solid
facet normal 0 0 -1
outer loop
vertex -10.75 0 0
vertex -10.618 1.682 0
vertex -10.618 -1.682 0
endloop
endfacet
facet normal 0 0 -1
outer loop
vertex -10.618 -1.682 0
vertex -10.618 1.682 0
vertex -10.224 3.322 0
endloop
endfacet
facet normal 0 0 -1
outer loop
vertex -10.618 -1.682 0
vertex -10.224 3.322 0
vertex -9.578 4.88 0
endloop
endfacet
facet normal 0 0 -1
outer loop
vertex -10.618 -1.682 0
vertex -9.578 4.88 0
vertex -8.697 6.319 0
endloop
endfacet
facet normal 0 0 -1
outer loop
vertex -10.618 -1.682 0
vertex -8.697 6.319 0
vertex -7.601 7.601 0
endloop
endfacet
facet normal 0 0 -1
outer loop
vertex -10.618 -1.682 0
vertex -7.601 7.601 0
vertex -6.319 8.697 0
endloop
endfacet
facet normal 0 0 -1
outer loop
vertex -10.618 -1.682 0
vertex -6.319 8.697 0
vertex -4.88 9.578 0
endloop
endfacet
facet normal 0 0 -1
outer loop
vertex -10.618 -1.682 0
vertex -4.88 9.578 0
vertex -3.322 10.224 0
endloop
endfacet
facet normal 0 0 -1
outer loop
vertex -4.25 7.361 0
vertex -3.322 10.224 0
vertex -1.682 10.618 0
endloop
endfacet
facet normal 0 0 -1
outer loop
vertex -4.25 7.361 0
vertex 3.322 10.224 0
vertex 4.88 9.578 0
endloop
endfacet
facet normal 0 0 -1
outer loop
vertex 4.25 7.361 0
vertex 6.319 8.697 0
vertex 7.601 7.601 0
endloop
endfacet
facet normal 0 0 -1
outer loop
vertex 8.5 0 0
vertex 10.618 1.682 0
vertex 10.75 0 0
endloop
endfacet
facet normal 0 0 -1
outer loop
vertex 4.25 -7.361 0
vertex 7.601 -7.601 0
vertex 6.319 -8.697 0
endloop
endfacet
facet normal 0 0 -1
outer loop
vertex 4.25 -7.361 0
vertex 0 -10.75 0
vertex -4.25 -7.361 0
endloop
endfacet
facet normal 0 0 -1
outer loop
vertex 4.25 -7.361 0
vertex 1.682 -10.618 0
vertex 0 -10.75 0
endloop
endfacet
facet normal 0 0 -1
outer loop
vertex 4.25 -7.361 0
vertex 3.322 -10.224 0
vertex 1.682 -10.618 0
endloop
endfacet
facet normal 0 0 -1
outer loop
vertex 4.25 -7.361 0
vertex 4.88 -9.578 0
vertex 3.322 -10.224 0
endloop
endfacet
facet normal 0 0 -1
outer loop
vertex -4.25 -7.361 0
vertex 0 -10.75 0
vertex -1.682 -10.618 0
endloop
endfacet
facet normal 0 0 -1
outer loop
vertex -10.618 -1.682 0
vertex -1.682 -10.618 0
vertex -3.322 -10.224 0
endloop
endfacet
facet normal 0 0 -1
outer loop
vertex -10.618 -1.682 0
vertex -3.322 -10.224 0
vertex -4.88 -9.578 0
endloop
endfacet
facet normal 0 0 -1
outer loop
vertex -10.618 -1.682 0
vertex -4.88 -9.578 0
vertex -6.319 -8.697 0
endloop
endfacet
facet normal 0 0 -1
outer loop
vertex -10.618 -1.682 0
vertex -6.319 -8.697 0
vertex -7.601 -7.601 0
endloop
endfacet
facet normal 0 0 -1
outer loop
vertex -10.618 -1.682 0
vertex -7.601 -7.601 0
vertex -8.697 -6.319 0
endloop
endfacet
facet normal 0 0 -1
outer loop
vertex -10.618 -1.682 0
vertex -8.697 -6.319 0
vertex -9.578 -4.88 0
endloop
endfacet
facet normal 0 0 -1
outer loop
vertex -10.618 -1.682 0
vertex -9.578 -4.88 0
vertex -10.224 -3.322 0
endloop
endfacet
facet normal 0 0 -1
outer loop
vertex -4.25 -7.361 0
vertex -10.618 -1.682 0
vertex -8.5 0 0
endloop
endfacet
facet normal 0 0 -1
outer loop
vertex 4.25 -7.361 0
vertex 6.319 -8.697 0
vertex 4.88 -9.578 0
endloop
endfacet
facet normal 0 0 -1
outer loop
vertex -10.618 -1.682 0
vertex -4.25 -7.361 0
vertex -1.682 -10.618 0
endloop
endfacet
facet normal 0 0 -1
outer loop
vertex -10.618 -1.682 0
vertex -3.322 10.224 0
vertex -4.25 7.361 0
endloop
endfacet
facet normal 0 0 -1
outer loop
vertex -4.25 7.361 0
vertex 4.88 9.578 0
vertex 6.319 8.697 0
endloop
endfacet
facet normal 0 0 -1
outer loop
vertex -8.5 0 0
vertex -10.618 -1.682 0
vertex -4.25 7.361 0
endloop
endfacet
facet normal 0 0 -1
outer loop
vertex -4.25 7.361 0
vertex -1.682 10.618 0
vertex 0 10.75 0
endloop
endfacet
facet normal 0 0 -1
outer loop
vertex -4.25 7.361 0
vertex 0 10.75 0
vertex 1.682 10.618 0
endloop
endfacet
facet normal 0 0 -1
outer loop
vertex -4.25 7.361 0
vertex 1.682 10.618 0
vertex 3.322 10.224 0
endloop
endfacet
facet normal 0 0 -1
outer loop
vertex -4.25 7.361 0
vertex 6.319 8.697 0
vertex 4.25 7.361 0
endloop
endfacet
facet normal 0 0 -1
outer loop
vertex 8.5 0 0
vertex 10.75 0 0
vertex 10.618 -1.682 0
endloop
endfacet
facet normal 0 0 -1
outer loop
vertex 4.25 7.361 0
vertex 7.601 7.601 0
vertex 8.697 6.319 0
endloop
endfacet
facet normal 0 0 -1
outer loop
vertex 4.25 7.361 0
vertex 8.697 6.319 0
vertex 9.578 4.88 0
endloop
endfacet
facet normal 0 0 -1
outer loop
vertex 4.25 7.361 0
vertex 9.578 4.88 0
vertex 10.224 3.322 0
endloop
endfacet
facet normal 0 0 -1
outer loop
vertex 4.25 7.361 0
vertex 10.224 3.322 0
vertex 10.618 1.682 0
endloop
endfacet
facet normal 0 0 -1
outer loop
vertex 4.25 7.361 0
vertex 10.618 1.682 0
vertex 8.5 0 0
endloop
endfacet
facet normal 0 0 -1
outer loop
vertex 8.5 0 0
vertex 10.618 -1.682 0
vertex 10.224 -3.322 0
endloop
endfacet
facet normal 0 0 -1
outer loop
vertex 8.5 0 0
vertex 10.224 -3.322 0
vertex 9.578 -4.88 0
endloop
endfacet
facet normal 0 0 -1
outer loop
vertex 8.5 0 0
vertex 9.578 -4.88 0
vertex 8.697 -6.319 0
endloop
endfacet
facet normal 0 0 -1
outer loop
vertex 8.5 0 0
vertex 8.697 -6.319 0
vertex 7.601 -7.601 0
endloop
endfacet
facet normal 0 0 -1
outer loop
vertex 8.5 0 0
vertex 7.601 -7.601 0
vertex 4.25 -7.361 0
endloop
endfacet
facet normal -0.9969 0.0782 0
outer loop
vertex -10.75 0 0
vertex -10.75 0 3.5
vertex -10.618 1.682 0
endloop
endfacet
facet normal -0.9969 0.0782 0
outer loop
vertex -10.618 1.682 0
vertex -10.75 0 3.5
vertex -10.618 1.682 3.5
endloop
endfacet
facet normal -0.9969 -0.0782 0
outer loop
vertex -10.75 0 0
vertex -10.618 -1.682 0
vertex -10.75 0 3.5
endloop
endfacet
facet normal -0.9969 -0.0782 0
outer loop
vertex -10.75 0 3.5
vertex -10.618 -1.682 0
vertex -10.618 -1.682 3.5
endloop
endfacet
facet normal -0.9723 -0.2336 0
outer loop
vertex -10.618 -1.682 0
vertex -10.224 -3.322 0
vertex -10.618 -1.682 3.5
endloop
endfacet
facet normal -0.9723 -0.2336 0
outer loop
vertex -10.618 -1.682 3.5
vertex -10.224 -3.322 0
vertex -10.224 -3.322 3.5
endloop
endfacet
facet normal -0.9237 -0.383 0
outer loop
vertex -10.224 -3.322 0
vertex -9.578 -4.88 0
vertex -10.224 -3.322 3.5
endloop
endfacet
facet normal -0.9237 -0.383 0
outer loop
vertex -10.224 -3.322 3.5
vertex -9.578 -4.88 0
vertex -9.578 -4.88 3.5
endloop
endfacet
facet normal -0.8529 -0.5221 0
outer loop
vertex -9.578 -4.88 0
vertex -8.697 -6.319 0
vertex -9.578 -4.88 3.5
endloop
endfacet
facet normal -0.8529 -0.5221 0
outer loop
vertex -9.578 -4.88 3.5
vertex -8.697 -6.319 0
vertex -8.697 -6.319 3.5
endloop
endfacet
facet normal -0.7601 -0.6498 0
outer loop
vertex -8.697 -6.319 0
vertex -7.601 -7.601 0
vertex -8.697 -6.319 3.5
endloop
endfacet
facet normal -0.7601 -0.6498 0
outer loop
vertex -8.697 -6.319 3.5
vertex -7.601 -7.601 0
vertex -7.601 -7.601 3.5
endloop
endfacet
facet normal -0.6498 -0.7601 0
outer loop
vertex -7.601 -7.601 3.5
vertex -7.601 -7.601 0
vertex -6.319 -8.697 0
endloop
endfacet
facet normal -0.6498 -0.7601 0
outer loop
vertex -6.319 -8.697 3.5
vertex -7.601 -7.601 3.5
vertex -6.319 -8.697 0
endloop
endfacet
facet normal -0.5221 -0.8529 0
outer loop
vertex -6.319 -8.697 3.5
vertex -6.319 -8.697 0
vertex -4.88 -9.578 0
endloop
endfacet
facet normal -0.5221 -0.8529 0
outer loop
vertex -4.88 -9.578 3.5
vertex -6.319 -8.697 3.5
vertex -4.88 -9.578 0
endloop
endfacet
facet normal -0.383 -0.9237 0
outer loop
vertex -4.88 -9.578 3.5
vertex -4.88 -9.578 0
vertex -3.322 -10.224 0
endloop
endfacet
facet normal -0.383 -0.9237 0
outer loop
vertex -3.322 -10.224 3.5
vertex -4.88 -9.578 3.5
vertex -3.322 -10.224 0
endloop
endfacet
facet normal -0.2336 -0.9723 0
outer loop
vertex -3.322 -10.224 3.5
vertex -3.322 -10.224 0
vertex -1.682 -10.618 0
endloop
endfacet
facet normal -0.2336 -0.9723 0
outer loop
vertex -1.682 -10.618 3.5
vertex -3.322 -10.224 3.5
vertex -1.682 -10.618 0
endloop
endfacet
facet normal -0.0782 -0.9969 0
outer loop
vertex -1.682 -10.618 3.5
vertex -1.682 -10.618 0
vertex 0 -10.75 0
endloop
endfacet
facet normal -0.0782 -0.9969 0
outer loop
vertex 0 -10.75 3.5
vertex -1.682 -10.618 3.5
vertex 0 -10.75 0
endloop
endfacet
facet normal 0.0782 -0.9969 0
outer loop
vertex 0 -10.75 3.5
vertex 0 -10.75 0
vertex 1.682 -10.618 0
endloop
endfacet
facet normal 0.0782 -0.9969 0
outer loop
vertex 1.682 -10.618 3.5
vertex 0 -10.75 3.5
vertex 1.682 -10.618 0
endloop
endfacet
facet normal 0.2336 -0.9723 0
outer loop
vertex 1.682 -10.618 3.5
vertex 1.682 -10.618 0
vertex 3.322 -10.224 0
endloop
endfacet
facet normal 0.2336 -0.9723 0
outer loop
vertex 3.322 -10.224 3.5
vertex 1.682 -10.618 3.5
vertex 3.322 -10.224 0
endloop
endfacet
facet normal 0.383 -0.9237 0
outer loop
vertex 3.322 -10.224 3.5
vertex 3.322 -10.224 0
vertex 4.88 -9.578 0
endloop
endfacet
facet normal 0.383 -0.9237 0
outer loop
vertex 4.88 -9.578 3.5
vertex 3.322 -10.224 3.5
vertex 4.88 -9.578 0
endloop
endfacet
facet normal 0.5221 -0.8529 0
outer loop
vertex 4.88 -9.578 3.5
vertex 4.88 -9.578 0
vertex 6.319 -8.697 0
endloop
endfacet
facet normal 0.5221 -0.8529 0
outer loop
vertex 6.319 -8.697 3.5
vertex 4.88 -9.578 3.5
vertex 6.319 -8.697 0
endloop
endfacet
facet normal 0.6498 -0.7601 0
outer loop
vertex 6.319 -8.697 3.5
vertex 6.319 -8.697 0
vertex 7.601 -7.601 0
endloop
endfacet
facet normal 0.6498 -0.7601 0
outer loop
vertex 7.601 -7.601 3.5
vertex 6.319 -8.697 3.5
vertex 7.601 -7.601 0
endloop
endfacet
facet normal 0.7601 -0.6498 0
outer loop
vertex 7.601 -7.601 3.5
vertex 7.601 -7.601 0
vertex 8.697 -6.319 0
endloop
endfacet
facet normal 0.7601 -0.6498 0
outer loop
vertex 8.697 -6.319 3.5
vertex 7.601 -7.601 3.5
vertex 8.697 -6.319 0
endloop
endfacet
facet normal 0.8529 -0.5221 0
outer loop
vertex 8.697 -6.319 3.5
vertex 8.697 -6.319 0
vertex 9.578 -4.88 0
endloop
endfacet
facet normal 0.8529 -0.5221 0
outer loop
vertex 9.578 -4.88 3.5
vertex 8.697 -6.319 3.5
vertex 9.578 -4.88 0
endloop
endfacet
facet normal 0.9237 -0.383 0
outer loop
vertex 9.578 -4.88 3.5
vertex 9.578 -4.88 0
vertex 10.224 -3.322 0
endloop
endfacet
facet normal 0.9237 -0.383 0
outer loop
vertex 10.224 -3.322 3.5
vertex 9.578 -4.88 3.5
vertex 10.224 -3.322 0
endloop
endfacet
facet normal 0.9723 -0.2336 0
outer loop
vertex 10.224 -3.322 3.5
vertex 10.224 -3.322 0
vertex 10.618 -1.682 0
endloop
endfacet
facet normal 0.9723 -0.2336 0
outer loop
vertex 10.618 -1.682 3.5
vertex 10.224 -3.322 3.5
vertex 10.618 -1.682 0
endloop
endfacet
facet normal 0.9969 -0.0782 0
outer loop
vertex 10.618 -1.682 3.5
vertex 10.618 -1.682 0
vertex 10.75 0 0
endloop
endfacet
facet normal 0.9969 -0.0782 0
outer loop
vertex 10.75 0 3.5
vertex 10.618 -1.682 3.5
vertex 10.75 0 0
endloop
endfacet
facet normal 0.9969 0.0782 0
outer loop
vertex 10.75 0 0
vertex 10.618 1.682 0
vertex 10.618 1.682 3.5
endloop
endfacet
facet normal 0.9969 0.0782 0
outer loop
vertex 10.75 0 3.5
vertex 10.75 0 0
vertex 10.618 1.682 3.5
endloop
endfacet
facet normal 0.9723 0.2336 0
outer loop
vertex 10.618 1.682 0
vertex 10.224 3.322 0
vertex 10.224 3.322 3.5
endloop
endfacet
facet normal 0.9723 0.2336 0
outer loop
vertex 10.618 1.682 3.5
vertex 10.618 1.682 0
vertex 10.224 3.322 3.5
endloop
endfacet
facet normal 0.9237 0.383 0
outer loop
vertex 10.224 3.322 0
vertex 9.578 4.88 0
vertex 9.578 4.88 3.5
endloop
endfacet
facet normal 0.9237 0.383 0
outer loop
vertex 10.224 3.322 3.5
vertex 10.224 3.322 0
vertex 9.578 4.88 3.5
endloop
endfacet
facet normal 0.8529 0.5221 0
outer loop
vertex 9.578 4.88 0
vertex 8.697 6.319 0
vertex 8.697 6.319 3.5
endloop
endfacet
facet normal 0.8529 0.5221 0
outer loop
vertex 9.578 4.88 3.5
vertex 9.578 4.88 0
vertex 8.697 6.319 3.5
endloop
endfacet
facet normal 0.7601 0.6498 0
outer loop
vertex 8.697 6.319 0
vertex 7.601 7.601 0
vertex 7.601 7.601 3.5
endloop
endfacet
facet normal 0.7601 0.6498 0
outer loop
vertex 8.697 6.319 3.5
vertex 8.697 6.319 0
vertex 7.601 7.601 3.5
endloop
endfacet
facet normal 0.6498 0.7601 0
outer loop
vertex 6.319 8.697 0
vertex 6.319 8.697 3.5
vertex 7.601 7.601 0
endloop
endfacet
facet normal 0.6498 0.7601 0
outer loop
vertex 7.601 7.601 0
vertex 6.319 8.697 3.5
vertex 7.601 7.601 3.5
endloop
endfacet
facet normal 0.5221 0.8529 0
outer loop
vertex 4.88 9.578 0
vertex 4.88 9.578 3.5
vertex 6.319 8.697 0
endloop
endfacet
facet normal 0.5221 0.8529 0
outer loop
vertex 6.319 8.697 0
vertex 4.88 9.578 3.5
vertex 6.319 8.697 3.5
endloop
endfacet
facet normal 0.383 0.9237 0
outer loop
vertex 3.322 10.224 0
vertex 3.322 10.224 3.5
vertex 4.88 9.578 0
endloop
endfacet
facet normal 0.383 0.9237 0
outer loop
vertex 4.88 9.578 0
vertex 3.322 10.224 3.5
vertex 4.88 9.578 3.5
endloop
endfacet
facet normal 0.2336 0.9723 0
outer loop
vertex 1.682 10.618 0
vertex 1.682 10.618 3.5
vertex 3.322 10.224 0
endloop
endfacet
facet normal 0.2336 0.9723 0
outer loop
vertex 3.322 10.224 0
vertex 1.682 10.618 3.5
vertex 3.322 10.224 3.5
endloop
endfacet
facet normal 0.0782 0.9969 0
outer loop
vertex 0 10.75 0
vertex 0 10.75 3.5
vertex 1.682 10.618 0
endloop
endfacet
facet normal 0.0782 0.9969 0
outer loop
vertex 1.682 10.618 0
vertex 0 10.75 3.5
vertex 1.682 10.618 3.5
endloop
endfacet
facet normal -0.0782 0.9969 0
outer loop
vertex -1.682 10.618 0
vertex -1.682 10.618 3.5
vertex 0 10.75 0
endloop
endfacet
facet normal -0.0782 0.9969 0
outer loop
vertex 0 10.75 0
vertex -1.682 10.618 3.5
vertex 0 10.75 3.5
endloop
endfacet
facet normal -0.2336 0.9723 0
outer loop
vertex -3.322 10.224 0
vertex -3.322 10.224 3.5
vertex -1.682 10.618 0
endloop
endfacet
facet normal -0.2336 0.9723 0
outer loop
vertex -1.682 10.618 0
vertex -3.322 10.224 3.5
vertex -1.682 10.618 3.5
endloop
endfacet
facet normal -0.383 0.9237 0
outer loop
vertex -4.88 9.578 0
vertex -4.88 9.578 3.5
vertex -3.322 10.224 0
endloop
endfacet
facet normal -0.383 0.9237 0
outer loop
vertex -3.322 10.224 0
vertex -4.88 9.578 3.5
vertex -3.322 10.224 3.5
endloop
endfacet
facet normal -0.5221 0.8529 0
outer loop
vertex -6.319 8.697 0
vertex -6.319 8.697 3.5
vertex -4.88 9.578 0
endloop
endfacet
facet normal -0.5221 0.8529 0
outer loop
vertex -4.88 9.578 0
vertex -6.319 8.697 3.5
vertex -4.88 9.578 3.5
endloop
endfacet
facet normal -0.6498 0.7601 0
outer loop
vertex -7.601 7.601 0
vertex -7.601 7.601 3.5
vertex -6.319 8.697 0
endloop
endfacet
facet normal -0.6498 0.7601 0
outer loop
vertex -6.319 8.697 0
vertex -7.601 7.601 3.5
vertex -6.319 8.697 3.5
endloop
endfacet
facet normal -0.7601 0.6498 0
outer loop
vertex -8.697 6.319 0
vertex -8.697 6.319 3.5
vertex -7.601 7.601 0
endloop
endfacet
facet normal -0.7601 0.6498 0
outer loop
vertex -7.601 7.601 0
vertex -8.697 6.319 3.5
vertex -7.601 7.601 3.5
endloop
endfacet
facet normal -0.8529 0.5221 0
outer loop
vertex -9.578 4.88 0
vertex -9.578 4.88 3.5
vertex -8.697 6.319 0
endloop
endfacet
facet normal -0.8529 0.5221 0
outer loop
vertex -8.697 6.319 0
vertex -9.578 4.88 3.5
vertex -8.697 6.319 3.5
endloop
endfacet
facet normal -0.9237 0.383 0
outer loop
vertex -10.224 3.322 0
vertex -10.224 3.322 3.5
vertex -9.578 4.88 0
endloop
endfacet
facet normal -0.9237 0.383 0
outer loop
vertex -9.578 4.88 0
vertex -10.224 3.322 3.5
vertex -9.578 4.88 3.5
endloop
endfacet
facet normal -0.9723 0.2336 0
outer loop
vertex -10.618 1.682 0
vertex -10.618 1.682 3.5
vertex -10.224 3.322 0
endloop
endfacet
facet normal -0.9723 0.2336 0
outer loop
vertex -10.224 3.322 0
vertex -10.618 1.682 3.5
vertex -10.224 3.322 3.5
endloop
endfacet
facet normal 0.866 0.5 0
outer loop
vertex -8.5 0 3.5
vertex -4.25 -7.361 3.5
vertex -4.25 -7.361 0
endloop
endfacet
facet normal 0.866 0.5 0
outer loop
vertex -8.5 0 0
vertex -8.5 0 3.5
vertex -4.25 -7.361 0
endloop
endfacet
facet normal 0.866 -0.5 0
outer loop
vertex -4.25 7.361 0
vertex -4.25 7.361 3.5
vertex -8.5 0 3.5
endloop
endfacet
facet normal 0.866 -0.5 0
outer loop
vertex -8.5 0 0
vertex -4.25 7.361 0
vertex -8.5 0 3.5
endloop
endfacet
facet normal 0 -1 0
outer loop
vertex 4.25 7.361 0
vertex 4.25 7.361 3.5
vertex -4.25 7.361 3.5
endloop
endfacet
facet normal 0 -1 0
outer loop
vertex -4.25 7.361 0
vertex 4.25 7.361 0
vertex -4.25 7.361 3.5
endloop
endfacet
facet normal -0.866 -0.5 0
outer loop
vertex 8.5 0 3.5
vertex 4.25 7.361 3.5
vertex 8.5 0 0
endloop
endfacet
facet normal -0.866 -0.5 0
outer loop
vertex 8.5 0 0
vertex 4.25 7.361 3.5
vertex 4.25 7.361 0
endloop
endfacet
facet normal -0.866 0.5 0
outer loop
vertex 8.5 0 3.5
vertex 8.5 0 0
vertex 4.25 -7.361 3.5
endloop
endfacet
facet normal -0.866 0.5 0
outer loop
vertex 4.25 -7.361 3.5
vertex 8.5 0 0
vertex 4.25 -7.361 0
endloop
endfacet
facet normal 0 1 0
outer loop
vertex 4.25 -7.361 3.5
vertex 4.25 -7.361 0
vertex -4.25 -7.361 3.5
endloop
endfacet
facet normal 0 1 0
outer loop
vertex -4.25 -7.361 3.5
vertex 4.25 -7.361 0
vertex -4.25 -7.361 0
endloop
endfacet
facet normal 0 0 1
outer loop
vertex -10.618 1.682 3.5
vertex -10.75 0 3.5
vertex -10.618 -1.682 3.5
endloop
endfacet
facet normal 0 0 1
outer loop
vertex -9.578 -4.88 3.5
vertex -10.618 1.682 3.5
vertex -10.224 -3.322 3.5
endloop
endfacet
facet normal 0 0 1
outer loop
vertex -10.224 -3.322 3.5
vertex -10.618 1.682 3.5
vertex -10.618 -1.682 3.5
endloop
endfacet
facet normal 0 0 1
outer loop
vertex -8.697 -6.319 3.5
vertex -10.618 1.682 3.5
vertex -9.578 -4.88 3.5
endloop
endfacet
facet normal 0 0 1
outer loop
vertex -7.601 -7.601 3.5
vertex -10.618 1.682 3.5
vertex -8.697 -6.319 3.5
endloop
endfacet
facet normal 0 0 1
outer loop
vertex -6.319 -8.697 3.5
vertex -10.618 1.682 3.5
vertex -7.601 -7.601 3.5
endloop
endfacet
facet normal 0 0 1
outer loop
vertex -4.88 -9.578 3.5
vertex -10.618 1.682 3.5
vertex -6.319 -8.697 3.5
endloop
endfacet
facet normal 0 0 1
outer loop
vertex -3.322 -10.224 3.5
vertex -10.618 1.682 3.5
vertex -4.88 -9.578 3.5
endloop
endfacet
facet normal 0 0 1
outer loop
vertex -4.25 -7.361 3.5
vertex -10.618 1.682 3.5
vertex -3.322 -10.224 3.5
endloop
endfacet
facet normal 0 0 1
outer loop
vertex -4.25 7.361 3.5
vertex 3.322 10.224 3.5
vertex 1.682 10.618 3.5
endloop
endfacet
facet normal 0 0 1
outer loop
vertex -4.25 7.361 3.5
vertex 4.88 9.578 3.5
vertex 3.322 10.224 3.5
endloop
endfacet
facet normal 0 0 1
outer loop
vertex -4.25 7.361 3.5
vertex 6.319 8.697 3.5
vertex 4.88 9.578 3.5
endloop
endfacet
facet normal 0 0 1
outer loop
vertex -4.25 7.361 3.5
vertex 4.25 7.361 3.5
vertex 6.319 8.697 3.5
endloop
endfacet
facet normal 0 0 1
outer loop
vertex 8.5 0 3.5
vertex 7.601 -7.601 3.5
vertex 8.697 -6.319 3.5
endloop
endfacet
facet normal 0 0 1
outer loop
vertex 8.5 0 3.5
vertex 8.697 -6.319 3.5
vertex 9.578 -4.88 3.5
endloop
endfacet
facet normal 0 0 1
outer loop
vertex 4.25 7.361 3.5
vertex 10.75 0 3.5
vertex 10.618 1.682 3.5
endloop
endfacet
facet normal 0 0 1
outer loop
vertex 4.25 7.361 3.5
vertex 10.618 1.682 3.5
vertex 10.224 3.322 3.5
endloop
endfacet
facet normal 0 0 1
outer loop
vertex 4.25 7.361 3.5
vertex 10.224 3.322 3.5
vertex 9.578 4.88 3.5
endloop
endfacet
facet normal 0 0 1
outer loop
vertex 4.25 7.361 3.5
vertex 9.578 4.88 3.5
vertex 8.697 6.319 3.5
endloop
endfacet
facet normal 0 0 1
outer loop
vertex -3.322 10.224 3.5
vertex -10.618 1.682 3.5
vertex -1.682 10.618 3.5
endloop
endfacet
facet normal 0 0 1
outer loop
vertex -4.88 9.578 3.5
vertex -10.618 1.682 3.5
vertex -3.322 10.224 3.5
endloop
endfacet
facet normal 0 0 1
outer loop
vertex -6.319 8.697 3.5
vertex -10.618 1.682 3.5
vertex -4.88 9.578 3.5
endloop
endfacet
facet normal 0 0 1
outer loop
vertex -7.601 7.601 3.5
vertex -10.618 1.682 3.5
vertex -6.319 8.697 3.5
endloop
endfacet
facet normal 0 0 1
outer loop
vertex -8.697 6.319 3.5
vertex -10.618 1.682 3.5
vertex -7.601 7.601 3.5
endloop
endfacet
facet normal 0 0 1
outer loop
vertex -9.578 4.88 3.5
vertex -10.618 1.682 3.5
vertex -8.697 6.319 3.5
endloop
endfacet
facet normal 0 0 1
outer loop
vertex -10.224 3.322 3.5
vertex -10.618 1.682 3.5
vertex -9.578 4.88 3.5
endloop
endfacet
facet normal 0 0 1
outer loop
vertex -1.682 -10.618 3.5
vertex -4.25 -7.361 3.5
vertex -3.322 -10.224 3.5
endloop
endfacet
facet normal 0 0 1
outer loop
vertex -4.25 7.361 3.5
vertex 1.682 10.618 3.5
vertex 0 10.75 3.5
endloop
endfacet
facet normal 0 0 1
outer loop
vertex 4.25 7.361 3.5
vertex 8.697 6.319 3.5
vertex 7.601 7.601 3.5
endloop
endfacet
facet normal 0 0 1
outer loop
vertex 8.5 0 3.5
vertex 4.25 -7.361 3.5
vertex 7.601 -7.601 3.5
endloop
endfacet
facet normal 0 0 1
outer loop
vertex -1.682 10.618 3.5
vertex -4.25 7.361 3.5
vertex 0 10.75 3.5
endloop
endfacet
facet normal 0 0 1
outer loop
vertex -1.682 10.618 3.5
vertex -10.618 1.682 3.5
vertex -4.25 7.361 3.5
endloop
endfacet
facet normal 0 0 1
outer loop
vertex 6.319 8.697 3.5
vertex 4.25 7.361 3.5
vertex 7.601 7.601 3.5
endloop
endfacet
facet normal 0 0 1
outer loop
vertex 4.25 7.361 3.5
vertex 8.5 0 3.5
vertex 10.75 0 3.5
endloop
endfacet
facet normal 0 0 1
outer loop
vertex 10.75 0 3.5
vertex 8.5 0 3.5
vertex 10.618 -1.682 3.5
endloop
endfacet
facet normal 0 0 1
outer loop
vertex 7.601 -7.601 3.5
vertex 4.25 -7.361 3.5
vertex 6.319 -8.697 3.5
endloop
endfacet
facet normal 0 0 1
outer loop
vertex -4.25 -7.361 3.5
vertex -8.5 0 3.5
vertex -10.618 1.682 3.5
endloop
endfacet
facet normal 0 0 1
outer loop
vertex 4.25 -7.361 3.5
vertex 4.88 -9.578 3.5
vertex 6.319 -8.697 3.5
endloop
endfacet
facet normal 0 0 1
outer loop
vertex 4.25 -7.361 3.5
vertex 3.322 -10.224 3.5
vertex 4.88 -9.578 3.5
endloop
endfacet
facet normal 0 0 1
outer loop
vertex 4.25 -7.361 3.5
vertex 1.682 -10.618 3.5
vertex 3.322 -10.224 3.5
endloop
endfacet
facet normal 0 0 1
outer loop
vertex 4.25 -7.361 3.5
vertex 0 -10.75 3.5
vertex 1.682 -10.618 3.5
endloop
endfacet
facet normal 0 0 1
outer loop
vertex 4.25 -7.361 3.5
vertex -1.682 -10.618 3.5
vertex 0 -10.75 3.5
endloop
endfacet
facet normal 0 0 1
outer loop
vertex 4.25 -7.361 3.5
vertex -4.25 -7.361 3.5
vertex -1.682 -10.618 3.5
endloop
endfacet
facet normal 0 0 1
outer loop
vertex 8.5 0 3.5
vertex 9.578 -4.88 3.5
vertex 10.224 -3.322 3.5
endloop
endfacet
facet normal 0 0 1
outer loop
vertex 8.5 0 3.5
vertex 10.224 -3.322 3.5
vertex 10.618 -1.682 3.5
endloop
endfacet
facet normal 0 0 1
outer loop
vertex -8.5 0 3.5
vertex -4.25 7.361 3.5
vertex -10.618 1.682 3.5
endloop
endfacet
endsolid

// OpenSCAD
difference() {
	cylinder(3.5,r=21.5/2,$fn=40);
	translate([0,0,-0.5])cylinder(4.5,r=17/2,$fa=60);
}
